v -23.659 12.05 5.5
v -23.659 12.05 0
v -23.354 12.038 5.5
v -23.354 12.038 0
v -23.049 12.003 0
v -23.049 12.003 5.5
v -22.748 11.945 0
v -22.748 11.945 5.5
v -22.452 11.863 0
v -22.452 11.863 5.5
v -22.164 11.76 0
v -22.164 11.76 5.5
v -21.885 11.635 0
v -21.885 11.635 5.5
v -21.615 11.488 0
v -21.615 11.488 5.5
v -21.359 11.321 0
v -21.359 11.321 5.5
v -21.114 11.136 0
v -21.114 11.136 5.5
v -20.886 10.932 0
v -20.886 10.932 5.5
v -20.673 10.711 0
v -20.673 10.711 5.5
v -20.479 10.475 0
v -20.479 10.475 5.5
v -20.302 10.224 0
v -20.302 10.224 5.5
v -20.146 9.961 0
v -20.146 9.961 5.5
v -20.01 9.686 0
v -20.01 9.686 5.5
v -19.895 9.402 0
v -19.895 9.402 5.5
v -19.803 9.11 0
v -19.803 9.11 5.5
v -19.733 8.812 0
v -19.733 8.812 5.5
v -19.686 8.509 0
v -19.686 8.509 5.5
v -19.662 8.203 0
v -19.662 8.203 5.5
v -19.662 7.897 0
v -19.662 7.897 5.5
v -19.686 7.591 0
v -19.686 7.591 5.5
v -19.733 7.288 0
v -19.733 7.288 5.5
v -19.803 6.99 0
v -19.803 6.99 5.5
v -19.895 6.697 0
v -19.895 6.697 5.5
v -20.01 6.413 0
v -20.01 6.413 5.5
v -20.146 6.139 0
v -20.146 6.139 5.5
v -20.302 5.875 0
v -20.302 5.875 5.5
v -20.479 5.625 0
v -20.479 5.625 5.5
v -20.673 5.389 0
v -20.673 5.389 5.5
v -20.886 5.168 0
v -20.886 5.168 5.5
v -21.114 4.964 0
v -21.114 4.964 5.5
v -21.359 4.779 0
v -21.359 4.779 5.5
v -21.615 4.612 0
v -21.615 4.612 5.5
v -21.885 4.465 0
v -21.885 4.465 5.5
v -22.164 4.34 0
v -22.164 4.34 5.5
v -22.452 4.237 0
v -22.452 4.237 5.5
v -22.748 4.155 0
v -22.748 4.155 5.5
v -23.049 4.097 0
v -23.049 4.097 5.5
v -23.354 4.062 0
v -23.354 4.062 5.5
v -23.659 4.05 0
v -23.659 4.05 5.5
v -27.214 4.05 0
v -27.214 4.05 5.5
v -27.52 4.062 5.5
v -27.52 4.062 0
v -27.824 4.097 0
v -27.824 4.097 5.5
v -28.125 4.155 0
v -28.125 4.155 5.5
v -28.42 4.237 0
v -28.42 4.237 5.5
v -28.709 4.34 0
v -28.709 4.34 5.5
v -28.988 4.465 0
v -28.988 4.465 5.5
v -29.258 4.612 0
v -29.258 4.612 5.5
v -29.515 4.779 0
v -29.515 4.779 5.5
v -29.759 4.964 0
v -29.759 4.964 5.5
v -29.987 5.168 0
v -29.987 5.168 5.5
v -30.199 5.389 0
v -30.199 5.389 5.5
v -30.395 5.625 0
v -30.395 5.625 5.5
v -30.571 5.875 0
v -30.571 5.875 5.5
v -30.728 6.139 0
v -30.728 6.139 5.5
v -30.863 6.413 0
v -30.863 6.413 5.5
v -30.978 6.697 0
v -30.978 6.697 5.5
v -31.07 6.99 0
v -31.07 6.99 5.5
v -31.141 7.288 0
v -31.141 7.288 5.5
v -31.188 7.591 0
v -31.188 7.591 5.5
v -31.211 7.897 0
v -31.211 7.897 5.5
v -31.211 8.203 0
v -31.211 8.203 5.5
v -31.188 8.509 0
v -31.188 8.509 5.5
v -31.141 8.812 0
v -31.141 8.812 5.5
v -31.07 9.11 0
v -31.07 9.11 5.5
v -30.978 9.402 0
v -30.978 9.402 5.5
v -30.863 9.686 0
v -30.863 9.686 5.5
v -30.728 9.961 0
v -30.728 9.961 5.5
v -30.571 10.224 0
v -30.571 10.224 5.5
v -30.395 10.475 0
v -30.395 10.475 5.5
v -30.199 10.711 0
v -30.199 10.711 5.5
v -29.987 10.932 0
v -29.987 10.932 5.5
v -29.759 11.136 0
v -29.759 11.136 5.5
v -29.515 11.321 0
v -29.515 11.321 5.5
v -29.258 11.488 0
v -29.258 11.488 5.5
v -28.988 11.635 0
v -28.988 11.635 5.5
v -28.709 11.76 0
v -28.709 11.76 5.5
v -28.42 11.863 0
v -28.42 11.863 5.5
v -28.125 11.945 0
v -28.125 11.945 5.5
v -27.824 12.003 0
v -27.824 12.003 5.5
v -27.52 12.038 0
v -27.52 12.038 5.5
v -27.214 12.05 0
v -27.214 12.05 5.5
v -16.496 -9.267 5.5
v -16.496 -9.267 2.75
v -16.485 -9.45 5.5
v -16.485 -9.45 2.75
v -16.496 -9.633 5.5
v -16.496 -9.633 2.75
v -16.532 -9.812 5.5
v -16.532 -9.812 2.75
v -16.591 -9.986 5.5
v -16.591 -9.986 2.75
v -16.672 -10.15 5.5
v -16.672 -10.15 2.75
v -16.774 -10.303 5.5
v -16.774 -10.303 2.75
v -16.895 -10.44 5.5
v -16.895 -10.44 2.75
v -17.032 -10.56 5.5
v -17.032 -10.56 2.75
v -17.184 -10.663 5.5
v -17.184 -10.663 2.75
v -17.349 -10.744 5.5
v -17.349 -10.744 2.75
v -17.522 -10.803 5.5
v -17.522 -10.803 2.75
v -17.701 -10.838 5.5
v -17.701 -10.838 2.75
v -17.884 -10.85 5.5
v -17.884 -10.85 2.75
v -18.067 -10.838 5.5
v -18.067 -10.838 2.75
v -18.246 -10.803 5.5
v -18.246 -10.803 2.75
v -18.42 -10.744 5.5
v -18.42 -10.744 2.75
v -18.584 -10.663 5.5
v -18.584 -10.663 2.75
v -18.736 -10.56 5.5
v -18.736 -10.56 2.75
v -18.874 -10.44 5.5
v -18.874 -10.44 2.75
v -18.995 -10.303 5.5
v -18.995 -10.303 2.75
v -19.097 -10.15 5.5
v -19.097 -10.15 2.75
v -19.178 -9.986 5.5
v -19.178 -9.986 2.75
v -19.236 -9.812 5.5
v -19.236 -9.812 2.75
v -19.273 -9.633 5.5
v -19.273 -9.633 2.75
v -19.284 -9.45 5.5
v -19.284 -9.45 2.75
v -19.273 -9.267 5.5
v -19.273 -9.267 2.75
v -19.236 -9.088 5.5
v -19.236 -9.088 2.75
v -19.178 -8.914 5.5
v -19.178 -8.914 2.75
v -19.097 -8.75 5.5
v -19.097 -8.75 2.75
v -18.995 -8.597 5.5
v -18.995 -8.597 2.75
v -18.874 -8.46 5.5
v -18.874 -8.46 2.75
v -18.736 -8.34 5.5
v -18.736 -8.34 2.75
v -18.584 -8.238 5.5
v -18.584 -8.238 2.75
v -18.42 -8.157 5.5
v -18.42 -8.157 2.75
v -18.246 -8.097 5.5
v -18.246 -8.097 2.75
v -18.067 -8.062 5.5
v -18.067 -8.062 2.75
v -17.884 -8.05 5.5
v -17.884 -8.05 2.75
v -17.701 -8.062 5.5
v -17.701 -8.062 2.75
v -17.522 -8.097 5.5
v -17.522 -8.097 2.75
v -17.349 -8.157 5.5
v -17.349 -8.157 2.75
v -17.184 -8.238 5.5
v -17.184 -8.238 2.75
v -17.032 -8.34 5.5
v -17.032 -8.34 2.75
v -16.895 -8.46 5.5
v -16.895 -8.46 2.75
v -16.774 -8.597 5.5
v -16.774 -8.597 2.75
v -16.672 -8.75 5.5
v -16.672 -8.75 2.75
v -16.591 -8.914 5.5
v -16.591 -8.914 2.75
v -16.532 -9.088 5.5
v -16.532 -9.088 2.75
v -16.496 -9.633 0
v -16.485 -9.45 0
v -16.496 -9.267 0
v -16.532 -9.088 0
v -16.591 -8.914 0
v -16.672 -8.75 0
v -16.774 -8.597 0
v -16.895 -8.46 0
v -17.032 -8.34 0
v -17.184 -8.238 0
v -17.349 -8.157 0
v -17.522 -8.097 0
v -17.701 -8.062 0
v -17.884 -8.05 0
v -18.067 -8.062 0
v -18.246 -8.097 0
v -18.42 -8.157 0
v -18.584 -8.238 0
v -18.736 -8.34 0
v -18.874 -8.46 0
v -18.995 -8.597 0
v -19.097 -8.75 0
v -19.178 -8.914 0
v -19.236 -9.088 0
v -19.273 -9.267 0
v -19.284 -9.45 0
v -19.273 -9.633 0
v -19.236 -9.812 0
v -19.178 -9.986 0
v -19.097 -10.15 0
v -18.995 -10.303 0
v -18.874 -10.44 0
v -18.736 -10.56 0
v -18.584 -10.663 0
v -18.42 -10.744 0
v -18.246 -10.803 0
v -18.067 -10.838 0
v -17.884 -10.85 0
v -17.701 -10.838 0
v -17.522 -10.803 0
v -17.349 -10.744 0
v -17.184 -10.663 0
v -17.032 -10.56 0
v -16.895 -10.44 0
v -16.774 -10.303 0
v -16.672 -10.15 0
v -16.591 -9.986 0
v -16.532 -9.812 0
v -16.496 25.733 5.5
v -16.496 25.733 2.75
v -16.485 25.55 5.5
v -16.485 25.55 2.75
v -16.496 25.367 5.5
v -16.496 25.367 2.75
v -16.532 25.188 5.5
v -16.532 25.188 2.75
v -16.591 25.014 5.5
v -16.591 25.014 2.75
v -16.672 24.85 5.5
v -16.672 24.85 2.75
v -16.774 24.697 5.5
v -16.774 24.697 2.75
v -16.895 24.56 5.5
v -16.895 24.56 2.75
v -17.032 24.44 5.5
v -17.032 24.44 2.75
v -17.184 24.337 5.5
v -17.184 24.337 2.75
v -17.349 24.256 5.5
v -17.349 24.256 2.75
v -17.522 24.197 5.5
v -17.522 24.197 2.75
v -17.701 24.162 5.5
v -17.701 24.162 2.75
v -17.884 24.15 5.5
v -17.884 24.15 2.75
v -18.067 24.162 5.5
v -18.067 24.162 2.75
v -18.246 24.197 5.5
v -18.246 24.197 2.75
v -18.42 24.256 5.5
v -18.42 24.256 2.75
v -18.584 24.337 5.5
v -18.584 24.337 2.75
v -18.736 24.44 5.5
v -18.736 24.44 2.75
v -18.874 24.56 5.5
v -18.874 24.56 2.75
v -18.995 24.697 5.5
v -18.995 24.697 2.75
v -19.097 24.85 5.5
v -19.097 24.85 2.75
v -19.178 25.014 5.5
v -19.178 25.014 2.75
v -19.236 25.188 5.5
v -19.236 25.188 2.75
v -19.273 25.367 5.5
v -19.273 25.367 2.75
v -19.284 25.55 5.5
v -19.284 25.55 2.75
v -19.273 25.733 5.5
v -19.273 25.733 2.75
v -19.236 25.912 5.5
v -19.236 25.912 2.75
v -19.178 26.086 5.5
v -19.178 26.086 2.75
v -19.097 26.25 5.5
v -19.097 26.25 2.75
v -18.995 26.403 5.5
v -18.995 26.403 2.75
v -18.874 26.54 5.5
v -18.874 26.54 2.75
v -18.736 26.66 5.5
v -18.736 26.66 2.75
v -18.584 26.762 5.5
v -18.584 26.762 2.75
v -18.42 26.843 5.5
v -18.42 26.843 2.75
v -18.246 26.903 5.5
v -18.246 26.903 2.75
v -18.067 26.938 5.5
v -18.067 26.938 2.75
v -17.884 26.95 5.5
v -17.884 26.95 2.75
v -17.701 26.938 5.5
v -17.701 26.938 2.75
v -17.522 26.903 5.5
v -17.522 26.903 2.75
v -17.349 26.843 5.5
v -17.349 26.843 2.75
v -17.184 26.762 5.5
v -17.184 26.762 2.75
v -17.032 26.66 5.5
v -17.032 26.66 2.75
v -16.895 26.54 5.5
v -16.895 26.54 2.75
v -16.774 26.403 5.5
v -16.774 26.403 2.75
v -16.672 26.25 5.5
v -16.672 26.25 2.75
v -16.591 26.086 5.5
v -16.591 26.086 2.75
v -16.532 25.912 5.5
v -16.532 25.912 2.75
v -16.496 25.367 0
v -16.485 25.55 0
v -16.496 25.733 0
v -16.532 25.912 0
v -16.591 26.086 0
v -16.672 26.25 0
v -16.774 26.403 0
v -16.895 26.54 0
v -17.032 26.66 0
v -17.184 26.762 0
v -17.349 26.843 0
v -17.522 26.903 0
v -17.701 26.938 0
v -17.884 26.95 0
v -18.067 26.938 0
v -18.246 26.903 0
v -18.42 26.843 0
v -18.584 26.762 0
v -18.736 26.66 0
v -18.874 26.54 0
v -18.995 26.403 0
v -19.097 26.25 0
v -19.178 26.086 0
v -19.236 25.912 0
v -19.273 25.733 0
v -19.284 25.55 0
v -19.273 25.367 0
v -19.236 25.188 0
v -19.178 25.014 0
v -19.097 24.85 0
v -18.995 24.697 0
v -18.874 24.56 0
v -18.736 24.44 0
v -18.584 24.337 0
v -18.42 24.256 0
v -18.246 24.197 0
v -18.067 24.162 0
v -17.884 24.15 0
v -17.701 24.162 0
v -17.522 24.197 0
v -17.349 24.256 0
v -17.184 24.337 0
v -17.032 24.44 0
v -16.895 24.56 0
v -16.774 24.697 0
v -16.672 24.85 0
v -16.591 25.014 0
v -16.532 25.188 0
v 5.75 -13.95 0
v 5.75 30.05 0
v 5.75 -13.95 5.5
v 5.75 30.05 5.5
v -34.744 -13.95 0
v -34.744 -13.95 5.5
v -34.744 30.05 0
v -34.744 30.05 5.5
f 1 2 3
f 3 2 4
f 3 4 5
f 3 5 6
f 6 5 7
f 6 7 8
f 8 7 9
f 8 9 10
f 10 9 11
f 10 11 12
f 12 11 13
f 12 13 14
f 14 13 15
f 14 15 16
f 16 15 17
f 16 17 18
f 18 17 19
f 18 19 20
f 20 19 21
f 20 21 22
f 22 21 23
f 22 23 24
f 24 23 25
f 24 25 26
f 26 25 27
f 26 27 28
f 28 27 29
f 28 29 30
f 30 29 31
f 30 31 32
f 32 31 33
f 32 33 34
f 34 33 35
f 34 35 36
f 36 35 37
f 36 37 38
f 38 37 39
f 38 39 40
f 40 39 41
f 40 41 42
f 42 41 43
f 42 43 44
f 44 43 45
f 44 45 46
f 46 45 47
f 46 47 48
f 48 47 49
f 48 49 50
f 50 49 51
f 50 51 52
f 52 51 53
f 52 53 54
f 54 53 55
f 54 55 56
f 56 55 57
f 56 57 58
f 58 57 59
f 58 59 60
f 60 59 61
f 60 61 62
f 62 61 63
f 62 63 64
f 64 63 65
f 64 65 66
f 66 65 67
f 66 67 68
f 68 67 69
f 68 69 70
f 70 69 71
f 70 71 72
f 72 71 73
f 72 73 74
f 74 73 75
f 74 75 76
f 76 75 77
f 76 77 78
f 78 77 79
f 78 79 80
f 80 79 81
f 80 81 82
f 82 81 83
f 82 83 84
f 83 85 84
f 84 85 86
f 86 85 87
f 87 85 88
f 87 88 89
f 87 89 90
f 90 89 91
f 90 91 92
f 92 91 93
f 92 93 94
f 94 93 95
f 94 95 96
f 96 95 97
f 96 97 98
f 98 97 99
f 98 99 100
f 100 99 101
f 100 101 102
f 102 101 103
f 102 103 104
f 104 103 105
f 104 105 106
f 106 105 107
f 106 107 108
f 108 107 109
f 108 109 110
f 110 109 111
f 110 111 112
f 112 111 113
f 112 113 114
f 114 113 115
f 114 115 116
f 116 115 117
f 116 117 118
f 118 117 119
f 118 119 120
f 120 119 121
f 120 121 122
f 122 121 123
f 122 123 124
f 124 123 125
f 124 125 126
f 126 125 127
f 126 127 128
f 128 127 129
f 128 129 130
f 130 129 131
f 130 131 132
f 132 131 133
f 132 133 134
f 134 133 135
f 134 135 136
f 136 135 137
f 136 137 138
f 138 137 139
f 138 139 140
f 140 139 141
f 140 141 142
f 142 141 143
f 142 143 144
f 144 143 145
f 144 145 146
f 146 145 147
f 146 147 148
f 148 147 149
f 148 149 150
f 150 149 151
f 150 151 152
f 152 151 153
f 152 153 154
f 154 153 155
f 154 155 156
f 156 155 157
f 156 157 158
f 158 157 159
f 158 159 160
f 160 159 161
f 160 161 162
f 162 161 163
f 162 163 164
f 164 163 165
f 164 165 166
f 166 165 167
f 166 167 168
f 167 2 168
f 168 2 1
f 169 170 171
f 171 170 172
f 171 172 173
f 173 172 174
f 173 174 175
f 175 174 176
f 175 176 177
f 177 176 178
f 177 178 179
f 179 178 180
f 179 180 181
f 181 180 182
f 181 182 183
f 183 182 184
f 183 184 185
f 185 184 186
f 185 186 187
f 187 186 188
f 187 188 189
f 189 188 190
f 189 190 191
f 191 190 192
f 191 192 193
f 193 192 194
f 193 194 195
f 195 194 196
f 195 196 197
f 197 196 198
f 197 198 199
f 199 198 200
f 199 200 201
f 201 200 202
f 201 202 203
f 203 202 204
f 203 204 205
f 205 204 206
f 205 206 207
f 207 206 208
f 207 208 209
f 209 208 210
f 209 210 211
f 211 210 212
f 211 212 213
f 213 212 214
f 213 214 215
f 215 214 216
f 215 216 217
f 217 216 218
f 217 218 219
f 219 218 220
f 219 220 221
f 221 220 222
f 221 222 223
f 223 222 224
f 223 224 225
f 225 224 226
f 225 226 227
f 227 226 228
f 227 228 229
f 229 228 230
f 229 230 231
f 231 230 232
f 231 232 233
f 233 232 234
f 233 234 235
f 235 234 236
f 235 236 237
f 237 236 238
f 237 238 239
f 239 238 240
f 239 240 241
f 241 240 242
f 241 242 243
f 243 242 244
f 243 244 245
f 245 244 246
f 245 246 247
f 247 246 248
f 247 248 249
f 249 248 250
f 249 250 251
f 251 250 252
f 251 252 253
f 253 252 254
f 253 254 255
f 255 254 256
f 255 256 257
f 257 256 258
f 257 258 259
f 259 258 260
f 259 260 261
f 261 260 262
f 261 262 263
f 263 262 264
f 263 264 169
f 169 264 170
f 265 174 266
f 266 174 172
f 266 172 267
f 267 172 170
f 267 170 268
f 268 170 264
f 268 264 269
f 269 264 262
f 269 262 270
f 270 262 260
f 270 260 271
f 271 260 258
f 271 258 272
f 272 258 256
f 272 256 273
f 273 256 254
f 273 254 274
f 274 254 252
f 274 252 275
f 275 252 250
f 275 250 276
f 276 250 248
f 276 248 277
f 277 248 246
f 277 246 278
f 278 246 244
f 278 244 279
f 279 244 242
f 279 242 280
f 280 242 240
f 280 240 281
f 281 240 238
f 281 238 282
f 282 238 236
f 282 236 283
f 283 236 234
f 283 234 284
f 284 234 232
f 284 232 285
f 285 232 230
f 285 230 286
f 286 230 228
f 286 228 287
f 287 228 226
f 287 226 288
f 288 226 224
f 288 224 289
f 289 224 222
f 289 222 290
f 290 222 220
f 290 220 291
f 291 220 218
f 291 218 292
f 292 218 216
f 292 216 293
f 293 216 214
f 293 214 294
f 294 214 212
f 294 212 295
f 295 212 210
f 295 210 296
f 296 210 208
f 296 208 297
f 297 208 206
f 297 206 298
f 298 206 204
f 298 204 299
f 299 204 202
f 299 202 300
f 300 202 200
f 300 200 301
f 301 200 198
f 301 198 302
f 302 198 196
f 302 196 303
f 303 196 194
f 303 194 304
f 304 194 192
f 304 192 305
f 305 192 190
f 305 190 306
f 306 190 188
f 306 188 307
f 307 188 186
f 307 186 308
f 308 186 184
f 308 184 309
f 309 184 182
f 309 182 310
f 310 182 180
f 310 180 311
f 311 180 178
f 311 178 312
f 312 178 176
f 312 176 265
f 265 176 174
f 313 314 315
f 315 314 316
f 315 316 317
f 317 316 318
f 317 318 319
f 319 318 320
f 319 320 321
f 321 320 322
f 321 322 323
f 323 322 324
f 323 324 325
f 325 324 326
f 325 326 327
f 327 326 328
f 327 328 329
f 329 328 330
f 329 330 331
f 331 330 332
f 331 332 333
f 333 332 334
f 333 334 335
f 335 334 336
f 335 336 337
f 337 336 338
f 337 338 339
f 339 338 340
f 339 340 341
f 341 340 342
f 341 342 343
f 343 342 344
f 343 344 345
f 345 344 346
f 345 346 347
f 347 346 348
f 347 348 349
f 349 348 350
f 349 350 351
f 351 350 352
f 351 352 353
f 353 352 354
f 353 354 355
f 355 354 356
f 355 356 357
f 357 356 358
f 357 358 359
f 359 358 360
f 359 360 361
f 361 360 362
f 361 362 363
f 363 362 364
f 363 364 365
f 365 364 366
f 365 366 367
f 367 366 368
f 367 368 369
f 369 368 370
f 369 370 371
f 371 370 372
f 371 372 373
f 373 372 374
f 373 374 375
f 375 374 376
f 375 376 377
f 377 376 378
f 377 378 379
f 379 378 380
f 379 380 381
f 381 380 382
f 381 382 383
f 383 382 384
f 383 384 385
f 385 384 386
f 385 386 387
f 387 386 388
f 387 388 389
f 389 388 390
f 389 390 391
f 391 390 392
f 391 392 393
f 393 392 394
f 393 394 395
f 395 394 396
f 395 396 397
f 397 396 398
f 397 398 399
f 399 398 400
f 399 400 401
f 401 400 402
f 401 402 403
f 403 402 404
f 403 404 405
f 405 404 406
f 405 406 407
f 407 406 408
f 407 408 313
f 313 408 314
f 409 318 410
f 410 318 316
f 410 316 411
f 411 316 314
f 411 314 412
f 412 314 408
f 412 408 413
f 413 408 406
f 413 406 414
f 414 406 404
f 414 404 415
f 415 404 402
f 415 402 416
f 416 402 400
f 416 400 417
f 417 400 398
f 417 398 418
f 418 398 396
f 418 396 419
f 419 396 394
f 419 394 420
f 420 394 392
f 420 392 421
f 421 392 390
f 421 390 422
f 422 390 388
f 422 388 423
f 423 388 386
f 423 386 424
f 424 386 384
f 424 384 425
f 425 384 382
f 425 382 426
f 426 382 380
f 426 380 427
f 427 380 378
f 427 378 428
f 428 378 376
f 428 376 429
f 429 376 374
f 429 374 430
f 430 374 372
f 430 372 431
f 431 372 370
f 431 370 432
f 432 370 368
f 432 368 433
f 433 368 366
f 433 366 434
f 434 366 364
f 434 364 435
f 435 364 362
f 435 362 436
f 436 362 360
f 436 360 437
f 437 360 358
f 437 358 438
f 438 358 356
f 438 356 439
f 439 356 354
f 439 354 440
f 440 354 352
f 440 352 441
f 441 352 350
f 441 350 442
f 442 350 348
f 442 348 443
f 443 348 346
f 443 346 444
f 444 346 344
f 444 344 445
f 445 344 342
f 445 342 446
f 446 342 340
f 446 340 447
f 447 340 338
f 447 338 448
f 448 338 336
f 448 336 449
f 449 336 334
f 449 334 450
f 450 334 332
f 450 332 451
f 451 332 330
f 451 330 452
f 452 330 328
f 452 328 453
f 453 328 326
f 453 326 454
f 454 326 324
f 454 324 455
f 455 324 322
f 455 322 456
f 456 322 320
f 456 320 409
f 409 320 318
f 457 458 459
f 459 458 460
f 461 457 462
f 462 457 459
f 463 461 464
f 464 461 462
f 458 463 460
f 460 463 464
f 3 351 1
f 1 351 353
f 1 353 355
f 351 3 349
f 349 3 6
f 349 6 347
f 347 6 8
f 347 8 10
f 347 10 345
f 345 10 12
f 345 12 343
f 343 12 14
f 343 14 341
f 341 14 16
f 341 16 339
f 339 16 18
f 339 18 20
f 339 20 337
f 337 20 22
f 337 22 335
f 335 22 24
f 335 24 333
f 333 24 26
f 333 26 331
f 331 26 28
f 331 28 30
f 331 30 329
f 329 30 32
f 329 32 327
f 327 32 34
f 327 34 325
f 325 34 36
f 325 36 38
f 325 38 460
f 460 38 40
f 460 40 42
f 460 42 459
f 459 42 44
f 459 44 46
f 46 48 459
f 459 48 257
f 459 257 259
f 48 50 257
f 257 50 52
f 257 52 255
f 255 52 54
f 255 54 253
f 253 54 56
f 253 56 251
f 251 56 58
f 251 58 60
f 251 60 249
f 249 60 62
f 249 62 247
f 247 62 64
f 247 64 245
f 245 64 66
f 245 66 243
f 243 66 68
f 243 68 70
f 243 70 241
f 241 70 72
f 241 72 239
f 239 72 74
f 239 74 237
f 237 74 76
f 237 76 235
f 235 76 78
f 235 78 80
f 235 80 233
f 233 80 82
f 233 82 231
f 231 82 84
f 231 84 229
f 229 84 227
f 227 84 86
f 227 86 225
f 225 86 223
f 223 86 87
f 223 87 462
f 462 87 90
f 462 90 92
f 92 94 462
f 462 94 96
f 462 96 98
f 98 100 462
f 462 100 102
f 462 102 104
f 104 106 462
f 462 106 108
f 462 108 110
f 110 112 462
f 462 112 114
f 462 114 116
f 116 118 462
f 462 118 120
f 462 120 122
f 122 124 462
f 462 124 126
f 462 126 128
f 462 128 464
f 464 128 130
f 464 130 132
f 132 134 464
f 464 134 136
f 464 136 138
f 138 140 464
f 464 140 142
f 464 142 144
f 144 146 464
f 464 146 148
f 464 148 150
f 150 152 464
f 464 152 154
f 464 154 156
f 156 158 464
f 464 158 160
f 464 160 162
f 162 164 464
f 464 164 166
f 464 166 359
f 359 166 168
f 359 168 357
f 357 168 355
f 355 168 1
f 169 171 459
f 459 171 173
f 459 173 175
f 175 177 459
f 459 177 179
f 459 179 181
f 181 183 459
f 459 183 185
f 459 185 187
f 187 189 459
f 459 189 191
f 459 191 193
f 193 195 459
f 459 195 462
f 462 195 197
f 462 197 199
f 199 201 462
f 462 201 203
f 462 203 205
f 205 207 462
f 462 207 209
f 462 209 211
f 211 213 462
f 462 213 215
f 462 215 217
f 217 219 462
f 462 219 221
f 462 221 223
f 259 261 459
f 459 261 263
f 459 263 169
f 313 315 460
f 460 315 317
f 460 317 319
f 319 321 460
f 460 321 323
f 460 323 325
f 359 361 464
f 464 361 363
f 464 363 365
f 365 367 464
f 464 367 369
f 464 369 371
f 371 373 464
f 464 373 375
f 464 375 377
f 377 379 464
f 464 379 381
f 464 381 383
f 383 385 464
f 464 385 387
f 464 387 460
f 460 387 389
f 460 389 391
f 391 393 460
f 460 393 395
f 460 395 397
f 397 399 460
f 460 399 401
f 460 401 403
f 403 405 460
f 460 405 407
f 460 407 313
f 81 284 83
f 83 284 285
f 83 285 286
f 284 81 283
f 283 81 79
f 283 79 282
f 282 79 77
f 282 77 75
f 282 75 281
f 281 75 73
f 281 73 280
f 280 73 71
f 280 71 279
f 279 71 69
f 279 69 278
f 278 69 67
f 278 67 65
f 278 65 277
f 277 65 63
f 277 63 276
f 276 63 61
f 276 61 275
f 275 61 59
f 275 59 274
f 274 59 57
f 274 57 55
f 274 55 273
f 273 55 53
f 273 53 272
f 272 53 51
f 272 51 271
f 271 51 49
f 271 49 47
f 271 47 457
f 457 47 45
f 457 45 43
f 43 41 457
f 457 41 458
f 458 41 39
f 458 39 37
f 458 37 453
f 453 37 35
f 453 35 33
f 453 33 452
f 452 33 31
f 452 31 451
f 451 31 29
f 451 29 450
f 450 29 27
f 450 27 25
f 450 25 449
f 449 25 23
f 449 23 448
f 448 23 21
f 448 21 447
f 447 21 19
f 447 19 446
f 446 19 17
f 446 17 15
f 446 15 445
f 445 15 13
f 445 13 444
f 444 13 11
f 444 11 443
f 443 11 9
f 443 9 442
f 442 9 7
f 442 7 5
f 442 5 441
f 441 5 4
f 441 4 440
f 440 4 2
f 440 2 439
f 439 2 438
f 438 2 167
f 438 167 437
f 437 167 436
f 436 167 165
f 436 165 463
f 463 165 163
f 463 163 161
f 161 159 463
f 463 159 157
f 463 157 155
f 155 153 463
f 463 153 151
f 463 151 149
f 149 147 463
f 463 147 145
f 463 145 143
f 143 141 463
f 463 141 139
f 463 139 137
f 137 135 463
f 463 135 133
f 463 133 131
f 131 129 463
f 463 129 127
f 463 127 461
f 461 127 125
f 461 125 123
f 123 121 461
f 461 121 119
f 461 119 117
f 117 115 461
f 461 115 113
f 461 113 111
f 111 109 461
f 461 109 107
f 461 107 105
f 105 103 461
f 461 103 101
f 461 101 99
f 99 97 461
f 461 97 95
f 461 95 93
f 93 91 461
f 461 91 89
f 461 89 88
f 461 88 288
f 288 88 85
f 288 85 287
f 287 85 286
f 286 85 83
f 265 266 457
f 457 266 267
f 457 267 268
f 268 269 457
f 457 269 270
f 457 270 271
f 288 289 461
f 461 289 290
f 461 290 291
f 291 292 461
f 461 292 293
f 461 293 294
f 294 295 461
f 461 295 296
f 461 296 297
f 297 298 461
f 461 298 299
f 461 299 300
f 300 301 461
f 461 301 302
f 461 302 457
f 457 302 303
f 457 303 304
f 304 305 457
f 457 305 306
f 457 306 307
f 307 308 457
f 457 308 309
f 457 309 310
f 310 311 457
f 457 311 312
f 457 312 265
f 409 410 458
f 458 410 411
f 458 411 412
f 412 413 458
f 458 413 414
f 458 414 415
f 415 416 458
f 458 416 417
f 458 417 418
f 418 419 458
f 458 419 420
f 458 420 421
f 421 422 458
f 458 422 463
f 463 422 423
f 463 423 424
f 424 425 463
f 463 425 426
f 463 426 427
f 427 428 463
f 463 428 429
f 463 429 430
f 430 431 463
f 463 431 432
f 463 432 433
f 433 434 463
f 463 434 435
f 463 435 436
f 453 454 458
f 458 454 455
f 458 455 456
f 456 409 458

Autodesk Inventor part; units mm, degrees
ref_plane "YZ Plane" through (0, 0, 0) normal (1, 0, 0) x (0, 1, 0)
ref_plane "XZ Plane" through (0, 0, 0) normal (0, 1, 0) x (-1, 0, 0)
ref_plane "XY Plane" through (0, 0, 0) normal (0, 0, 1) x (1, 0, 0)
sketch "Sketch1" plane through (0, 0, 0) normal (0, 0, 1) x (1, 0, 0)
  circle A0 centre (-17.8844, -9.45) radius 1.4 construction
  line L0 (-22, -13.95) -> (-22, -7.7794) construction
  line L1 (5.75, -13.95) -> (-22, -13.95) construction
  line L2 (5.75, 0) -> (5.75, -13.95) construction
  line L3 (5.75, 0) -> (0, 0) construction
  line L4 (0, 0) -> (0, -7.7794) construction
  line L5 (-14.8242, -7.7794) -> (0, -7.7794) construction
  line L6 (-14.8242, -4.7794) -> (-14.8242, -7.7794) construction
  line L7 (-21.3713, -4.7794) -> (-14.8242, -4.7794) construction
  line L8 (-21.3713, -7.7794) -> (-21.3713, -4.7794) construction
  line L9 (-22, -7.7794) -> (-21.3713, -7.7794) construction
  circle A1 centre (-17.8844, 25.55) radius 1.4 construction
  line L10 (-22, 23.8794) -> (-22, 30.05) construction
  line L11 (-22, 23.8794) -> (-21.3713, 23.8794) construction
  line L12 (-21.3713, 20.8794) -> (-21.3713, 23.8794) construction
  line L13 (-14.8242, 20.8794) -> (-21.3713, 20.8794) construction
  line L14 (-14.8242, 23.8794) -> (-14.8242, 20.8794) construction
  line L15 (-14.8242, 23.8794) -> (0, 23.8794) construction
  line L16 (0, 16.1) -> (0, 23.8794) construction
  line L17 (5.75, 16.1) -> (0, 16.1) construction
  line L18 (5.75, 16.1) -> (5.75, 30.05) construction
  line L19 (5.75, 30.05) -> (-22, 30.05) construction
  line L20 (-23.6597, 10.55) -> (-31.2138, 10.55) construction
  arc A2 (-23.6597, 5.55) -> (-23.6597, 10.55) centre (-23.6597, 8.05) ccw construction
  line L21 (-31.2138, 5.55) -> (-23.6597, 5.55) construction
  line L22 (-31.2138, 5.55) -> (-31.2138, -1.8612) construction
  line L23 (-19.2138, -1.8612) -> (-31.2138, -1.8612) construction
  line L24 (-19.2138, 17.9612) -> (-19.2138, -1.8612) construction
  line L25 (-31.2138, 17.9612) -> (-19.2138, 17.9612) construction
  line L26 (-31.2138, 17.9612) -> (-31.2138, 10.55) construction
  line L27 (5.75, 30.05) -> (-34.7444, 30.05)
  line L28 (-34.7444, 30.05) -> (-34.7444, -13.95)
  line L29 (-34.7444, -13.95) -> (5.75, -13.95)
  line L30 (5.75, -13.95) -> (5.75, 30.05)
  circle A3 centre (-17.8844, 25.55) radius 1.4
  circle A4 centre (-17.8844, -9.45) radius 1.4
  line L31 (-23.6597, 8.05) -> (-27.2138, 8.05) construction
  line L32 (-23.6597, 12.05) -> (-27.2138, 12.05)
  line L33 (-27.2138, 4.05) -> (-23.6597, 4.05)
  arc A5 (-23.6597, 4.05) -> (-23.6597, 12.05) centre (-23.6597, 8.05) ccw
  arc A6 (-27.2138, 12.05) -> (-27.2138, 4.05) centre (-27.2138, 8.05) ccw
  point P0 (-25.4367, 8.05)
  dimension "d2" = 8
extrude "Extrusion1" add sketch "Sketch1" along normal blind 5.5
properties part number "plate"
